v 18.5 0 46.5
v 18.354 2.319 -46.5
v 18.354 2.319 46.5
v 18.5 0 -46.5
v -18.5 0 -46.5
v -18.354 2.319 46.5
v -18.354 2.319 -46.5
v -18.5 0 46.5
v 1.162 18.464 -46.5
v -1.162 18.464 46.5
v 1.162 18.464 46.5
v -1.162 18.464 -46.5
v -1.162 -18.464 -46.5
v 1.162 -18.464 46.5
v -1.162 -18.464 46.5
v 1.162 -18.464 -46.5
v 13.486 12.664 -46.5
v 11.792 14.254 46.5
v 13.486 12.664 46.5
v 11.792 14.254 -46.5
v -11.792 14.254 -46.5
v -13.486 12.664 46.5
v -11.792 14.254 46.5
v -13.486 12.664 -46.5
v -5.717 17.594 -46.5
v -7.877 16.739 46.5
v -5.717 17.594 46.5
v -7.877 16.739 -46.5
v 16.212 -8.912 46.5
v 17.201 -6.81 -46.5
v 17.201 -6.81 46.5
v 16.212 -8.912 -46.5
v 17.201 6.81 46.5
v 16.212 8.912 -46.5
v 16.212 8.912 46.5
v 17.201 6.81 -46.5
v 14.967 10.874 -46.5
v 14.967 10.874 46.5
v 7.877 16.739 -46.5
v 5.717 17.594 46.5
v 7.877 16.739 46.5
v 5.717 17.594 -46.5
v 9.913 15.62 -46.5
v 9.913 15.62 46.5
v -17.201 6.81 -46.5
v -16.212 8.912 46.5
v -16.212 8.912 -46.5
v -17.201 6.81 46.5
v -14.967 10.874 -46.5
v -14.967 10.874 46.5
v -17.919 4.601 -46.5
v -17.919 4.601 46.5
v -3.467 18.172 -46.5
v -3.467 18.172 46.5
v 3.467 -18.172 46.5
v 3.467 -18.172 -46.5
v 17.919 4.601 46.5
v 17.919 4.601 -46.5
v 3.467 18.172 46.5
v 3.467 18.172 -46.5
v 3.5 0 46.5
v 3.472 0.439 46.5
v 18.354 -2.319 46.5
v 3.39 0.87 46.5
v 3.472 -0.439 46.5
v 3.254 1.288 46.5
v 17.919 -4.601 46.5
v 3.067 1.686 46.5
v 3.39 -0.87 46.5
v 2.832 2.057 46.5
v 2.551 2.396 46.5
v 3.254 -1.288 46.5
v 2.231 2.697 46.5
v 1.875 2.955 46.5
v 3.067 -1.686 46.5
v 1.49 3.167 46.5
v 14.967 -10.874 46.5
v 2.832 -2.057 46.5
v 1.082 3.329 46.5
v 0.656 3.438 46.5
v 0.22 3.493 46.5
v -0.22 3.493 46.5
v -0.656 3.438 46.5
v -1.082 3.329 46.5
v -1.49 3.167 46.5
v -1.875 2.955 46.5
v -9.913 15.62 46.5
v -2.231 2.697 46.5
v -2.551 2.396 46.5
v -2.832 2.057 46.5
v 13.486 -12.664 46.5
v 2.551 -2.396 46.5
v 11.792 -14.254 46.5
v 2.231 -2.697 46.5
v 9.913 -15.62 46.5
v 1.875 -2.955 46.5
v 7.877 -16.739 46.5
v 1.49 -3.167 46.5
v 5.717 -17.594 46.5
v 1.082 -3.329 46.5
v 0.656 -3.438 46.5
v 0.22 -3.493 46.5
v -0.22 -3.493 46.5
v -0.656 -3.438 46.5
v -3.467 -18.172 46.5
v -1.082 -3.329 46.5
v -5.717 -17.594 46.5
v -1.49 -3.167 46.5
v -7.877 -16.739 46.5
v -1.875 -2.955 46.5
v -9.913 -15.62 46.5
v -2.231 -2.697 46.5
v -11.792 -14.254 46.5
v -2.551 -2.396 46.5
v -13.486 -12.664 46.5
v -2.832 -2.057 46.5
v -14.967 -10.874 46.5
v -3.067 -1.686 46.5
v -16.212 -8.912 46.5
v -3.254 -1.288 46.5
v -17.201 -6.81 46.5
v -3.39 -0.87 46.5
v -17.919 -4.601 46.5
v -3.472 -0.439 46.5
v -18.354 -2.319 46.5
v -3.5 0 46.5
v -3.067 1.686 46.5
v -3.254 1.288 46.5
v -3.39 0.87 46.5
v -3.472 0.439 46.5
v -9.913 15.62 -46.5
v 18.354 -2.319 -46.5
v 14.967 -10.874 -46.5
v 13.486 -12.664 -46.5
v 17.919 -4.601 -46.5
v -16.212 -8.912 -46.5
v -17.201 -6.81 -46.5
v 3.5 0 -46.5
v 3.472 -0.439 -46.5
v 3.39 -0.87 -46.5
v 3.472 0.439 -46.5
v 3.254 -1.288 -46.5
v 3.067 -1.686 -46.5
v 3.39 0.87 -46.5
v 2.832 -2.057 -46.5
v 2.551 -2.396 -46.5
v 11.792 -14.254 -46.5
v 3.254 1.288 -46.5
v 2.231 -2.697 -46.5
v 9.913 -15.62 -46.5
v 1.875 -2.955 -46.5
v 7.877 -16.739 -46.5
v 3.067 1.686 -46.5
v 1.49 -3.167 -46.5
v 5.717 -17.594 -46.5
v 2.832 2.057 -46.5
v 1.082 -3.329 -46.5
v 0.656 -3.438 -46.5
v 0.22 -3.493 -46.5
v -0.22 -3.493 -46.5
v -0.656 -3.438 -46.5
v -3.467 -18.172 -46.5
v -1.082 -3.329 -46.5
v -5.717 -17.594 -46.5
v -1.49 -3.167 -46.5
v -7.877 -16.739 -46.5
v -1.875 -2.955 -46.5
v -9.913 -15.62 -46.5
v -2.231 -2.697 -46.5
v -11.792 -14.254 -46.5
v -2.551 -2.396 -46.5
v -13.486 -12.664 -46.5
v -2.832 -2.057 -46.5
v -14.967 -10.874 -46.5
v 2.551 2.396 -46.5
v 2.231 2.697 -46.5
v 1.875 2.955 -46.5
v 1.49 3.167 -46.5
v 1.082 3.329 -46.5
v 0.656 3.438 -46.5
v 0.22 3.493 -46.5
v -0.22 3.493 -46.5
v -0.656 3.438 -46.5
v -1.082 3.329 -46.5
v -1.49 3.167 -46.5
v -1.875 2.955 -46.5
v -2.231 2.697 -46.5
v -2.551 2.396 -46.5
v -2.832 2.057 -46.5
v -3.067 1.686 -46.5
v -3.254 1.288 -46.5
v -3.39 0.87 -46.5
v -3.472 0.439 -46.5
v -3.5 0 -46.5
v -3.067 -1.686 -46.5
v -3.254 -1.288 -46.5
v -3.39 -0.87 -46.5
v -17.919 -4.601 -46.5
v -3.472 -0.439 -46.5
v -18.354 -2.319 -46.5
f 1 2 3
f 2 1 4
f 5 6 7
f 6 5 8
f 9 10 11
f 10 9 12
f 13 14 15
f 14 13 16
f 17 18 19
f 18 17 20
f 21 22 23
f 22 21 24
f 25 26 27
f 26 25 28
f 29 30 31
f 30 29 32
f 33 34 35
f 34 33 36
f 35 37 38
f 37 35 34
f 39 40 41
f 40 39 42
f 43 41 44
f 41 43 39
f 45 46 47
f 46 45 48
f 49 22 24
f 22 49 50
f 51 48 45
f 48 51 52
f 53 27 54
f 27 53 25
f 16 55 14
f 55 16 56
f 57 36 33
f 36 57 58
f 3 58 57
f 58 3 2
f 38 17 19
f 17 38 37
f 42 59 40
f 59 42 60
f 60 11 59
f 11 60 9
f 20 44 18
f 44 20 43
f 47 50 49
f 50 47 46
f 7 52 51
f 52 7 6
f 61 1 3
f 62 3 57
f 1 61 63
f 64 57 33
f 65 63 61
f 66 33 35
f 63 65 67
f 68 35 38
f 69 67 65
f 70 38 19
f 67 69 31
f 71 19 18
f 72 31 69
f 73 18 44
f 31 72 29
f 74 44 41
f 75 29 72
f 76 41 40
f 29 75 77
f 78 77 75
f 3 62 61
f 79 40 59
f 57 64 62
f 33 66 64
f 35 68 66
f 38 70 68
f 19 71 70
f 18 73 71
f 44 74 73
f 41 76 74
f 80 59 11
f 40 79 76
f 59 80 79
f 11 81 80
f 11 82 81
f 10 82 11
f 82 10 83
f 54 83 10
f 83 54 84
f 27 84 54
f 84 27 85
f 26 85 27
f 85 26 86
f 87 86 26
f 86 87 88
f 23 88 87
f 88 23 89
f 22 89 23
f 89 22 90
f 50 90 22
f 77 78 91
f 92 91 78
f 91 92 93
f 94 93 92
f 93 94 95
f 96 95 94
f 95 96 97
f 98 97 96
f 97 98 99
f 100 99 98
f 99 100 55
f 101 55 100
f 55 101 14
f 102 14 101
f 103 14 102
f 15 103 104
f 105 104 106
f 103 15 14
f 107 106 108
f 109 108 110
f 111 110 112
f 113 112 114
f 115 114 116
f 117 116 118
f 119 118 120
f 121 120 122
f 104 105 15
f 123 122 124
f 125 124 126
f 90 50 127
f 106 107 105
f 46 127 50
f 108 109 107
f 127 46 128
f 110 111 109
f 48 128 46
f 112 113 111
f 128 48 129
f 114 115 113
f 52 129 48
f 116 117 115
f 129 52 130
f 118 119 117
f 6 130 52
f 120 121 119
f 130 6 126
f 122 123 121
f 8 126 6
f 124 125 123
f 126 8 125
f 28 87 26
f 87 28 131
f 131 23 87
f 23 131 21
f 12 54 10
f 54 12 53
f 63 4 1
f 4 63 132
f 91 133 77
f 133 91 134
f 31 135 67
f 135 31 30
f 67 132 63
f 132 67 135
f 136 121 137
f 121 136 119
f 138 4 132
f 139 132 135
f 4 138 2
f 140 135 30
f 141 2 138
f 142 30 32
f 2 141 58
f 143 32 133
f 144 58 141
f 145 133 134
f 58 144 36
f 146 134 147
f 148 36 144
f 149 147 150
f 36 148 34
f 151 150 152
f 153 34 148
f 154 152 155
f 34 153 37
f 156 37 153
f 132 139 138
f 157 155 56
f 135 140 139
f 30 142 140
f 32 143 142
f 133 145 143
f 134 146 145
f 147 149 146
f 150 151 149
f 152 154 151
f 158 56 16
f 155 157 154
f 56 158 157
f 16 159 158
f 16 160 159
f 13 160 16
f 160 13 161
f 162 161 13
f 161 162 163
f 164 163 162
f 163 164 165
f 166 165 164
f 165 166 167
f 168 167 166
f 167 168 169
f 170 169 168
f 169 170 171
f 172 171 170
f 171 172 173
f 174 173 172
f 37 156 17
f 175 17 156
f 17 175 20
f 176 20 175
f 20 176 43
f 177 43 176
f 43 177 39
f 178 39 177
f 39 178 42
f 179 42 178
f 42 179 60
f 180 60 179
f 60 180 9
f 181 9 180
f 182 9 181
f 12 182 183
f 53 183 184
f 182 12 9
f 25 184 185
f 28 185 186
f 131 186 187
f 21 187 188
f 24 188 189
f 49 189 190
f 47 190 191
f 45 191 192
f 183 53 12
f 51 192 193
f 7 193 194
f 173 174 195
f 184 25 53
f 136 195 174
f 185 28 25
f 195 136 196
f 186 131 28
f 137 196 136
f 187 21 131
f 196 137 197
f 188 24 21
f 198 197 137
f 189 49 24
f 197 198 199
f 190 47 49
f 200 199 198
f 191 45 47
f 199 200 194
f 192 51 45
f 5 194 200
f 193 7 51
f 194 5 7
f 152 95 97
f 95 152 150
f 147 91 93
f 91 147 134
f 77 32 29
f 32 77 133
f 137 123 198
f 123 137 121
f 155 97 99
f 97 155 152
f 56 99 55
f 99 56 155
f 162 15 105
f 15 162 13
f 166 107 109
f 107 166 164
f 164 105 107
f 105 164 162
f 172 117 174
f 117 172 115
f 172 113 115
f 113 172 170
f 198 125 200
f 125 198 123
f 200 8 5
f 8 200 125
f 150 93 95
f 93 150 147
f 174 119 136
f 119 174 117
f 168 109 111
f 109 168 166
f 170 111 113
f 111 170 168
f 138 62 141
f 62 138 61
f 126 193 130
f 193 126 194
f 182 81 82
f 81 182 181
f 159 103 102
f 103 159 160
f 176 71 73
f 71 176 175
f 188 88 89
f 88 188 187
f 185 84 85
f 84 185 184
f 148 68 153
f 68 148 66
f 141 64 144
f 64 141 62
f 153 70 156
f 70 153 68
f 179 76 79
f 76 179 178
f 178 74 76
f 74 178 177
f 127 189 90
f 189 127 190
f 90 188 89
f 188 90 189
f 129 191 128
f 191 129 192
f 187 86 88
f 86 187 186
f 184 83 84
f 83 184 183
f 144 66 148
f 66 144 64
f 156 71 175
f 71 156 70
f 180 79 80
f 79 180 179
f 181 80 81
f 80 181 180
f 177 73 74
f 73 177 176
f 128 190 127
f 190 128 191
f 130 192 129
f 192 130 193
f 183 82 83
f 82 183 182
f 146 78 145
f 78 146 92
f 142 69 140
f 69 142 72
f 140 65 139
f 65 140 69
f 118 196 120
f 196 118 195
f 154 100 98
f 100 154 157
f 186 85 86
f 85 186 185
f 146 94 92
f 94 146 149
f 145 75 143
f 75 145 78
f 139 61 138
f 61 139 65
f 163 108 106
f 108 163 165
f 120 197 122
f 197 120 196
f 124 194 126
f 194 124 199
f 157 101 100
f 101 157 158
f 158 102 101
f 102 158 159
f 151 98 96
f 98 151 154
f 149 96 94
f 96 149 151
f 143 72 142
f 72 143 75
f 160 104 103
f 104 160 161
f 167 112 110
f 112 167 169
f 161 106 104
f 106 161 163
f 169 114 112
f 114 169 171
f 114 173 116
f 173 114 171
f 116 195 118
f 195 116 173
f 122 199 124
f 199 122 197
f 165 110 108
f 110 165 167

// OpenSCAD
$fn = 50;


difference() {
	union() {
		translate(v = [0, 0, -46.5000000000]) {
			cylinder(h = 93, r = 18.5000000000);
		}
	}
	union() {
		translate(v = [0, 0, -100.0000000000]) {
			cylinder(h = 200, r = 3.5000000000);
		}
	}
}
